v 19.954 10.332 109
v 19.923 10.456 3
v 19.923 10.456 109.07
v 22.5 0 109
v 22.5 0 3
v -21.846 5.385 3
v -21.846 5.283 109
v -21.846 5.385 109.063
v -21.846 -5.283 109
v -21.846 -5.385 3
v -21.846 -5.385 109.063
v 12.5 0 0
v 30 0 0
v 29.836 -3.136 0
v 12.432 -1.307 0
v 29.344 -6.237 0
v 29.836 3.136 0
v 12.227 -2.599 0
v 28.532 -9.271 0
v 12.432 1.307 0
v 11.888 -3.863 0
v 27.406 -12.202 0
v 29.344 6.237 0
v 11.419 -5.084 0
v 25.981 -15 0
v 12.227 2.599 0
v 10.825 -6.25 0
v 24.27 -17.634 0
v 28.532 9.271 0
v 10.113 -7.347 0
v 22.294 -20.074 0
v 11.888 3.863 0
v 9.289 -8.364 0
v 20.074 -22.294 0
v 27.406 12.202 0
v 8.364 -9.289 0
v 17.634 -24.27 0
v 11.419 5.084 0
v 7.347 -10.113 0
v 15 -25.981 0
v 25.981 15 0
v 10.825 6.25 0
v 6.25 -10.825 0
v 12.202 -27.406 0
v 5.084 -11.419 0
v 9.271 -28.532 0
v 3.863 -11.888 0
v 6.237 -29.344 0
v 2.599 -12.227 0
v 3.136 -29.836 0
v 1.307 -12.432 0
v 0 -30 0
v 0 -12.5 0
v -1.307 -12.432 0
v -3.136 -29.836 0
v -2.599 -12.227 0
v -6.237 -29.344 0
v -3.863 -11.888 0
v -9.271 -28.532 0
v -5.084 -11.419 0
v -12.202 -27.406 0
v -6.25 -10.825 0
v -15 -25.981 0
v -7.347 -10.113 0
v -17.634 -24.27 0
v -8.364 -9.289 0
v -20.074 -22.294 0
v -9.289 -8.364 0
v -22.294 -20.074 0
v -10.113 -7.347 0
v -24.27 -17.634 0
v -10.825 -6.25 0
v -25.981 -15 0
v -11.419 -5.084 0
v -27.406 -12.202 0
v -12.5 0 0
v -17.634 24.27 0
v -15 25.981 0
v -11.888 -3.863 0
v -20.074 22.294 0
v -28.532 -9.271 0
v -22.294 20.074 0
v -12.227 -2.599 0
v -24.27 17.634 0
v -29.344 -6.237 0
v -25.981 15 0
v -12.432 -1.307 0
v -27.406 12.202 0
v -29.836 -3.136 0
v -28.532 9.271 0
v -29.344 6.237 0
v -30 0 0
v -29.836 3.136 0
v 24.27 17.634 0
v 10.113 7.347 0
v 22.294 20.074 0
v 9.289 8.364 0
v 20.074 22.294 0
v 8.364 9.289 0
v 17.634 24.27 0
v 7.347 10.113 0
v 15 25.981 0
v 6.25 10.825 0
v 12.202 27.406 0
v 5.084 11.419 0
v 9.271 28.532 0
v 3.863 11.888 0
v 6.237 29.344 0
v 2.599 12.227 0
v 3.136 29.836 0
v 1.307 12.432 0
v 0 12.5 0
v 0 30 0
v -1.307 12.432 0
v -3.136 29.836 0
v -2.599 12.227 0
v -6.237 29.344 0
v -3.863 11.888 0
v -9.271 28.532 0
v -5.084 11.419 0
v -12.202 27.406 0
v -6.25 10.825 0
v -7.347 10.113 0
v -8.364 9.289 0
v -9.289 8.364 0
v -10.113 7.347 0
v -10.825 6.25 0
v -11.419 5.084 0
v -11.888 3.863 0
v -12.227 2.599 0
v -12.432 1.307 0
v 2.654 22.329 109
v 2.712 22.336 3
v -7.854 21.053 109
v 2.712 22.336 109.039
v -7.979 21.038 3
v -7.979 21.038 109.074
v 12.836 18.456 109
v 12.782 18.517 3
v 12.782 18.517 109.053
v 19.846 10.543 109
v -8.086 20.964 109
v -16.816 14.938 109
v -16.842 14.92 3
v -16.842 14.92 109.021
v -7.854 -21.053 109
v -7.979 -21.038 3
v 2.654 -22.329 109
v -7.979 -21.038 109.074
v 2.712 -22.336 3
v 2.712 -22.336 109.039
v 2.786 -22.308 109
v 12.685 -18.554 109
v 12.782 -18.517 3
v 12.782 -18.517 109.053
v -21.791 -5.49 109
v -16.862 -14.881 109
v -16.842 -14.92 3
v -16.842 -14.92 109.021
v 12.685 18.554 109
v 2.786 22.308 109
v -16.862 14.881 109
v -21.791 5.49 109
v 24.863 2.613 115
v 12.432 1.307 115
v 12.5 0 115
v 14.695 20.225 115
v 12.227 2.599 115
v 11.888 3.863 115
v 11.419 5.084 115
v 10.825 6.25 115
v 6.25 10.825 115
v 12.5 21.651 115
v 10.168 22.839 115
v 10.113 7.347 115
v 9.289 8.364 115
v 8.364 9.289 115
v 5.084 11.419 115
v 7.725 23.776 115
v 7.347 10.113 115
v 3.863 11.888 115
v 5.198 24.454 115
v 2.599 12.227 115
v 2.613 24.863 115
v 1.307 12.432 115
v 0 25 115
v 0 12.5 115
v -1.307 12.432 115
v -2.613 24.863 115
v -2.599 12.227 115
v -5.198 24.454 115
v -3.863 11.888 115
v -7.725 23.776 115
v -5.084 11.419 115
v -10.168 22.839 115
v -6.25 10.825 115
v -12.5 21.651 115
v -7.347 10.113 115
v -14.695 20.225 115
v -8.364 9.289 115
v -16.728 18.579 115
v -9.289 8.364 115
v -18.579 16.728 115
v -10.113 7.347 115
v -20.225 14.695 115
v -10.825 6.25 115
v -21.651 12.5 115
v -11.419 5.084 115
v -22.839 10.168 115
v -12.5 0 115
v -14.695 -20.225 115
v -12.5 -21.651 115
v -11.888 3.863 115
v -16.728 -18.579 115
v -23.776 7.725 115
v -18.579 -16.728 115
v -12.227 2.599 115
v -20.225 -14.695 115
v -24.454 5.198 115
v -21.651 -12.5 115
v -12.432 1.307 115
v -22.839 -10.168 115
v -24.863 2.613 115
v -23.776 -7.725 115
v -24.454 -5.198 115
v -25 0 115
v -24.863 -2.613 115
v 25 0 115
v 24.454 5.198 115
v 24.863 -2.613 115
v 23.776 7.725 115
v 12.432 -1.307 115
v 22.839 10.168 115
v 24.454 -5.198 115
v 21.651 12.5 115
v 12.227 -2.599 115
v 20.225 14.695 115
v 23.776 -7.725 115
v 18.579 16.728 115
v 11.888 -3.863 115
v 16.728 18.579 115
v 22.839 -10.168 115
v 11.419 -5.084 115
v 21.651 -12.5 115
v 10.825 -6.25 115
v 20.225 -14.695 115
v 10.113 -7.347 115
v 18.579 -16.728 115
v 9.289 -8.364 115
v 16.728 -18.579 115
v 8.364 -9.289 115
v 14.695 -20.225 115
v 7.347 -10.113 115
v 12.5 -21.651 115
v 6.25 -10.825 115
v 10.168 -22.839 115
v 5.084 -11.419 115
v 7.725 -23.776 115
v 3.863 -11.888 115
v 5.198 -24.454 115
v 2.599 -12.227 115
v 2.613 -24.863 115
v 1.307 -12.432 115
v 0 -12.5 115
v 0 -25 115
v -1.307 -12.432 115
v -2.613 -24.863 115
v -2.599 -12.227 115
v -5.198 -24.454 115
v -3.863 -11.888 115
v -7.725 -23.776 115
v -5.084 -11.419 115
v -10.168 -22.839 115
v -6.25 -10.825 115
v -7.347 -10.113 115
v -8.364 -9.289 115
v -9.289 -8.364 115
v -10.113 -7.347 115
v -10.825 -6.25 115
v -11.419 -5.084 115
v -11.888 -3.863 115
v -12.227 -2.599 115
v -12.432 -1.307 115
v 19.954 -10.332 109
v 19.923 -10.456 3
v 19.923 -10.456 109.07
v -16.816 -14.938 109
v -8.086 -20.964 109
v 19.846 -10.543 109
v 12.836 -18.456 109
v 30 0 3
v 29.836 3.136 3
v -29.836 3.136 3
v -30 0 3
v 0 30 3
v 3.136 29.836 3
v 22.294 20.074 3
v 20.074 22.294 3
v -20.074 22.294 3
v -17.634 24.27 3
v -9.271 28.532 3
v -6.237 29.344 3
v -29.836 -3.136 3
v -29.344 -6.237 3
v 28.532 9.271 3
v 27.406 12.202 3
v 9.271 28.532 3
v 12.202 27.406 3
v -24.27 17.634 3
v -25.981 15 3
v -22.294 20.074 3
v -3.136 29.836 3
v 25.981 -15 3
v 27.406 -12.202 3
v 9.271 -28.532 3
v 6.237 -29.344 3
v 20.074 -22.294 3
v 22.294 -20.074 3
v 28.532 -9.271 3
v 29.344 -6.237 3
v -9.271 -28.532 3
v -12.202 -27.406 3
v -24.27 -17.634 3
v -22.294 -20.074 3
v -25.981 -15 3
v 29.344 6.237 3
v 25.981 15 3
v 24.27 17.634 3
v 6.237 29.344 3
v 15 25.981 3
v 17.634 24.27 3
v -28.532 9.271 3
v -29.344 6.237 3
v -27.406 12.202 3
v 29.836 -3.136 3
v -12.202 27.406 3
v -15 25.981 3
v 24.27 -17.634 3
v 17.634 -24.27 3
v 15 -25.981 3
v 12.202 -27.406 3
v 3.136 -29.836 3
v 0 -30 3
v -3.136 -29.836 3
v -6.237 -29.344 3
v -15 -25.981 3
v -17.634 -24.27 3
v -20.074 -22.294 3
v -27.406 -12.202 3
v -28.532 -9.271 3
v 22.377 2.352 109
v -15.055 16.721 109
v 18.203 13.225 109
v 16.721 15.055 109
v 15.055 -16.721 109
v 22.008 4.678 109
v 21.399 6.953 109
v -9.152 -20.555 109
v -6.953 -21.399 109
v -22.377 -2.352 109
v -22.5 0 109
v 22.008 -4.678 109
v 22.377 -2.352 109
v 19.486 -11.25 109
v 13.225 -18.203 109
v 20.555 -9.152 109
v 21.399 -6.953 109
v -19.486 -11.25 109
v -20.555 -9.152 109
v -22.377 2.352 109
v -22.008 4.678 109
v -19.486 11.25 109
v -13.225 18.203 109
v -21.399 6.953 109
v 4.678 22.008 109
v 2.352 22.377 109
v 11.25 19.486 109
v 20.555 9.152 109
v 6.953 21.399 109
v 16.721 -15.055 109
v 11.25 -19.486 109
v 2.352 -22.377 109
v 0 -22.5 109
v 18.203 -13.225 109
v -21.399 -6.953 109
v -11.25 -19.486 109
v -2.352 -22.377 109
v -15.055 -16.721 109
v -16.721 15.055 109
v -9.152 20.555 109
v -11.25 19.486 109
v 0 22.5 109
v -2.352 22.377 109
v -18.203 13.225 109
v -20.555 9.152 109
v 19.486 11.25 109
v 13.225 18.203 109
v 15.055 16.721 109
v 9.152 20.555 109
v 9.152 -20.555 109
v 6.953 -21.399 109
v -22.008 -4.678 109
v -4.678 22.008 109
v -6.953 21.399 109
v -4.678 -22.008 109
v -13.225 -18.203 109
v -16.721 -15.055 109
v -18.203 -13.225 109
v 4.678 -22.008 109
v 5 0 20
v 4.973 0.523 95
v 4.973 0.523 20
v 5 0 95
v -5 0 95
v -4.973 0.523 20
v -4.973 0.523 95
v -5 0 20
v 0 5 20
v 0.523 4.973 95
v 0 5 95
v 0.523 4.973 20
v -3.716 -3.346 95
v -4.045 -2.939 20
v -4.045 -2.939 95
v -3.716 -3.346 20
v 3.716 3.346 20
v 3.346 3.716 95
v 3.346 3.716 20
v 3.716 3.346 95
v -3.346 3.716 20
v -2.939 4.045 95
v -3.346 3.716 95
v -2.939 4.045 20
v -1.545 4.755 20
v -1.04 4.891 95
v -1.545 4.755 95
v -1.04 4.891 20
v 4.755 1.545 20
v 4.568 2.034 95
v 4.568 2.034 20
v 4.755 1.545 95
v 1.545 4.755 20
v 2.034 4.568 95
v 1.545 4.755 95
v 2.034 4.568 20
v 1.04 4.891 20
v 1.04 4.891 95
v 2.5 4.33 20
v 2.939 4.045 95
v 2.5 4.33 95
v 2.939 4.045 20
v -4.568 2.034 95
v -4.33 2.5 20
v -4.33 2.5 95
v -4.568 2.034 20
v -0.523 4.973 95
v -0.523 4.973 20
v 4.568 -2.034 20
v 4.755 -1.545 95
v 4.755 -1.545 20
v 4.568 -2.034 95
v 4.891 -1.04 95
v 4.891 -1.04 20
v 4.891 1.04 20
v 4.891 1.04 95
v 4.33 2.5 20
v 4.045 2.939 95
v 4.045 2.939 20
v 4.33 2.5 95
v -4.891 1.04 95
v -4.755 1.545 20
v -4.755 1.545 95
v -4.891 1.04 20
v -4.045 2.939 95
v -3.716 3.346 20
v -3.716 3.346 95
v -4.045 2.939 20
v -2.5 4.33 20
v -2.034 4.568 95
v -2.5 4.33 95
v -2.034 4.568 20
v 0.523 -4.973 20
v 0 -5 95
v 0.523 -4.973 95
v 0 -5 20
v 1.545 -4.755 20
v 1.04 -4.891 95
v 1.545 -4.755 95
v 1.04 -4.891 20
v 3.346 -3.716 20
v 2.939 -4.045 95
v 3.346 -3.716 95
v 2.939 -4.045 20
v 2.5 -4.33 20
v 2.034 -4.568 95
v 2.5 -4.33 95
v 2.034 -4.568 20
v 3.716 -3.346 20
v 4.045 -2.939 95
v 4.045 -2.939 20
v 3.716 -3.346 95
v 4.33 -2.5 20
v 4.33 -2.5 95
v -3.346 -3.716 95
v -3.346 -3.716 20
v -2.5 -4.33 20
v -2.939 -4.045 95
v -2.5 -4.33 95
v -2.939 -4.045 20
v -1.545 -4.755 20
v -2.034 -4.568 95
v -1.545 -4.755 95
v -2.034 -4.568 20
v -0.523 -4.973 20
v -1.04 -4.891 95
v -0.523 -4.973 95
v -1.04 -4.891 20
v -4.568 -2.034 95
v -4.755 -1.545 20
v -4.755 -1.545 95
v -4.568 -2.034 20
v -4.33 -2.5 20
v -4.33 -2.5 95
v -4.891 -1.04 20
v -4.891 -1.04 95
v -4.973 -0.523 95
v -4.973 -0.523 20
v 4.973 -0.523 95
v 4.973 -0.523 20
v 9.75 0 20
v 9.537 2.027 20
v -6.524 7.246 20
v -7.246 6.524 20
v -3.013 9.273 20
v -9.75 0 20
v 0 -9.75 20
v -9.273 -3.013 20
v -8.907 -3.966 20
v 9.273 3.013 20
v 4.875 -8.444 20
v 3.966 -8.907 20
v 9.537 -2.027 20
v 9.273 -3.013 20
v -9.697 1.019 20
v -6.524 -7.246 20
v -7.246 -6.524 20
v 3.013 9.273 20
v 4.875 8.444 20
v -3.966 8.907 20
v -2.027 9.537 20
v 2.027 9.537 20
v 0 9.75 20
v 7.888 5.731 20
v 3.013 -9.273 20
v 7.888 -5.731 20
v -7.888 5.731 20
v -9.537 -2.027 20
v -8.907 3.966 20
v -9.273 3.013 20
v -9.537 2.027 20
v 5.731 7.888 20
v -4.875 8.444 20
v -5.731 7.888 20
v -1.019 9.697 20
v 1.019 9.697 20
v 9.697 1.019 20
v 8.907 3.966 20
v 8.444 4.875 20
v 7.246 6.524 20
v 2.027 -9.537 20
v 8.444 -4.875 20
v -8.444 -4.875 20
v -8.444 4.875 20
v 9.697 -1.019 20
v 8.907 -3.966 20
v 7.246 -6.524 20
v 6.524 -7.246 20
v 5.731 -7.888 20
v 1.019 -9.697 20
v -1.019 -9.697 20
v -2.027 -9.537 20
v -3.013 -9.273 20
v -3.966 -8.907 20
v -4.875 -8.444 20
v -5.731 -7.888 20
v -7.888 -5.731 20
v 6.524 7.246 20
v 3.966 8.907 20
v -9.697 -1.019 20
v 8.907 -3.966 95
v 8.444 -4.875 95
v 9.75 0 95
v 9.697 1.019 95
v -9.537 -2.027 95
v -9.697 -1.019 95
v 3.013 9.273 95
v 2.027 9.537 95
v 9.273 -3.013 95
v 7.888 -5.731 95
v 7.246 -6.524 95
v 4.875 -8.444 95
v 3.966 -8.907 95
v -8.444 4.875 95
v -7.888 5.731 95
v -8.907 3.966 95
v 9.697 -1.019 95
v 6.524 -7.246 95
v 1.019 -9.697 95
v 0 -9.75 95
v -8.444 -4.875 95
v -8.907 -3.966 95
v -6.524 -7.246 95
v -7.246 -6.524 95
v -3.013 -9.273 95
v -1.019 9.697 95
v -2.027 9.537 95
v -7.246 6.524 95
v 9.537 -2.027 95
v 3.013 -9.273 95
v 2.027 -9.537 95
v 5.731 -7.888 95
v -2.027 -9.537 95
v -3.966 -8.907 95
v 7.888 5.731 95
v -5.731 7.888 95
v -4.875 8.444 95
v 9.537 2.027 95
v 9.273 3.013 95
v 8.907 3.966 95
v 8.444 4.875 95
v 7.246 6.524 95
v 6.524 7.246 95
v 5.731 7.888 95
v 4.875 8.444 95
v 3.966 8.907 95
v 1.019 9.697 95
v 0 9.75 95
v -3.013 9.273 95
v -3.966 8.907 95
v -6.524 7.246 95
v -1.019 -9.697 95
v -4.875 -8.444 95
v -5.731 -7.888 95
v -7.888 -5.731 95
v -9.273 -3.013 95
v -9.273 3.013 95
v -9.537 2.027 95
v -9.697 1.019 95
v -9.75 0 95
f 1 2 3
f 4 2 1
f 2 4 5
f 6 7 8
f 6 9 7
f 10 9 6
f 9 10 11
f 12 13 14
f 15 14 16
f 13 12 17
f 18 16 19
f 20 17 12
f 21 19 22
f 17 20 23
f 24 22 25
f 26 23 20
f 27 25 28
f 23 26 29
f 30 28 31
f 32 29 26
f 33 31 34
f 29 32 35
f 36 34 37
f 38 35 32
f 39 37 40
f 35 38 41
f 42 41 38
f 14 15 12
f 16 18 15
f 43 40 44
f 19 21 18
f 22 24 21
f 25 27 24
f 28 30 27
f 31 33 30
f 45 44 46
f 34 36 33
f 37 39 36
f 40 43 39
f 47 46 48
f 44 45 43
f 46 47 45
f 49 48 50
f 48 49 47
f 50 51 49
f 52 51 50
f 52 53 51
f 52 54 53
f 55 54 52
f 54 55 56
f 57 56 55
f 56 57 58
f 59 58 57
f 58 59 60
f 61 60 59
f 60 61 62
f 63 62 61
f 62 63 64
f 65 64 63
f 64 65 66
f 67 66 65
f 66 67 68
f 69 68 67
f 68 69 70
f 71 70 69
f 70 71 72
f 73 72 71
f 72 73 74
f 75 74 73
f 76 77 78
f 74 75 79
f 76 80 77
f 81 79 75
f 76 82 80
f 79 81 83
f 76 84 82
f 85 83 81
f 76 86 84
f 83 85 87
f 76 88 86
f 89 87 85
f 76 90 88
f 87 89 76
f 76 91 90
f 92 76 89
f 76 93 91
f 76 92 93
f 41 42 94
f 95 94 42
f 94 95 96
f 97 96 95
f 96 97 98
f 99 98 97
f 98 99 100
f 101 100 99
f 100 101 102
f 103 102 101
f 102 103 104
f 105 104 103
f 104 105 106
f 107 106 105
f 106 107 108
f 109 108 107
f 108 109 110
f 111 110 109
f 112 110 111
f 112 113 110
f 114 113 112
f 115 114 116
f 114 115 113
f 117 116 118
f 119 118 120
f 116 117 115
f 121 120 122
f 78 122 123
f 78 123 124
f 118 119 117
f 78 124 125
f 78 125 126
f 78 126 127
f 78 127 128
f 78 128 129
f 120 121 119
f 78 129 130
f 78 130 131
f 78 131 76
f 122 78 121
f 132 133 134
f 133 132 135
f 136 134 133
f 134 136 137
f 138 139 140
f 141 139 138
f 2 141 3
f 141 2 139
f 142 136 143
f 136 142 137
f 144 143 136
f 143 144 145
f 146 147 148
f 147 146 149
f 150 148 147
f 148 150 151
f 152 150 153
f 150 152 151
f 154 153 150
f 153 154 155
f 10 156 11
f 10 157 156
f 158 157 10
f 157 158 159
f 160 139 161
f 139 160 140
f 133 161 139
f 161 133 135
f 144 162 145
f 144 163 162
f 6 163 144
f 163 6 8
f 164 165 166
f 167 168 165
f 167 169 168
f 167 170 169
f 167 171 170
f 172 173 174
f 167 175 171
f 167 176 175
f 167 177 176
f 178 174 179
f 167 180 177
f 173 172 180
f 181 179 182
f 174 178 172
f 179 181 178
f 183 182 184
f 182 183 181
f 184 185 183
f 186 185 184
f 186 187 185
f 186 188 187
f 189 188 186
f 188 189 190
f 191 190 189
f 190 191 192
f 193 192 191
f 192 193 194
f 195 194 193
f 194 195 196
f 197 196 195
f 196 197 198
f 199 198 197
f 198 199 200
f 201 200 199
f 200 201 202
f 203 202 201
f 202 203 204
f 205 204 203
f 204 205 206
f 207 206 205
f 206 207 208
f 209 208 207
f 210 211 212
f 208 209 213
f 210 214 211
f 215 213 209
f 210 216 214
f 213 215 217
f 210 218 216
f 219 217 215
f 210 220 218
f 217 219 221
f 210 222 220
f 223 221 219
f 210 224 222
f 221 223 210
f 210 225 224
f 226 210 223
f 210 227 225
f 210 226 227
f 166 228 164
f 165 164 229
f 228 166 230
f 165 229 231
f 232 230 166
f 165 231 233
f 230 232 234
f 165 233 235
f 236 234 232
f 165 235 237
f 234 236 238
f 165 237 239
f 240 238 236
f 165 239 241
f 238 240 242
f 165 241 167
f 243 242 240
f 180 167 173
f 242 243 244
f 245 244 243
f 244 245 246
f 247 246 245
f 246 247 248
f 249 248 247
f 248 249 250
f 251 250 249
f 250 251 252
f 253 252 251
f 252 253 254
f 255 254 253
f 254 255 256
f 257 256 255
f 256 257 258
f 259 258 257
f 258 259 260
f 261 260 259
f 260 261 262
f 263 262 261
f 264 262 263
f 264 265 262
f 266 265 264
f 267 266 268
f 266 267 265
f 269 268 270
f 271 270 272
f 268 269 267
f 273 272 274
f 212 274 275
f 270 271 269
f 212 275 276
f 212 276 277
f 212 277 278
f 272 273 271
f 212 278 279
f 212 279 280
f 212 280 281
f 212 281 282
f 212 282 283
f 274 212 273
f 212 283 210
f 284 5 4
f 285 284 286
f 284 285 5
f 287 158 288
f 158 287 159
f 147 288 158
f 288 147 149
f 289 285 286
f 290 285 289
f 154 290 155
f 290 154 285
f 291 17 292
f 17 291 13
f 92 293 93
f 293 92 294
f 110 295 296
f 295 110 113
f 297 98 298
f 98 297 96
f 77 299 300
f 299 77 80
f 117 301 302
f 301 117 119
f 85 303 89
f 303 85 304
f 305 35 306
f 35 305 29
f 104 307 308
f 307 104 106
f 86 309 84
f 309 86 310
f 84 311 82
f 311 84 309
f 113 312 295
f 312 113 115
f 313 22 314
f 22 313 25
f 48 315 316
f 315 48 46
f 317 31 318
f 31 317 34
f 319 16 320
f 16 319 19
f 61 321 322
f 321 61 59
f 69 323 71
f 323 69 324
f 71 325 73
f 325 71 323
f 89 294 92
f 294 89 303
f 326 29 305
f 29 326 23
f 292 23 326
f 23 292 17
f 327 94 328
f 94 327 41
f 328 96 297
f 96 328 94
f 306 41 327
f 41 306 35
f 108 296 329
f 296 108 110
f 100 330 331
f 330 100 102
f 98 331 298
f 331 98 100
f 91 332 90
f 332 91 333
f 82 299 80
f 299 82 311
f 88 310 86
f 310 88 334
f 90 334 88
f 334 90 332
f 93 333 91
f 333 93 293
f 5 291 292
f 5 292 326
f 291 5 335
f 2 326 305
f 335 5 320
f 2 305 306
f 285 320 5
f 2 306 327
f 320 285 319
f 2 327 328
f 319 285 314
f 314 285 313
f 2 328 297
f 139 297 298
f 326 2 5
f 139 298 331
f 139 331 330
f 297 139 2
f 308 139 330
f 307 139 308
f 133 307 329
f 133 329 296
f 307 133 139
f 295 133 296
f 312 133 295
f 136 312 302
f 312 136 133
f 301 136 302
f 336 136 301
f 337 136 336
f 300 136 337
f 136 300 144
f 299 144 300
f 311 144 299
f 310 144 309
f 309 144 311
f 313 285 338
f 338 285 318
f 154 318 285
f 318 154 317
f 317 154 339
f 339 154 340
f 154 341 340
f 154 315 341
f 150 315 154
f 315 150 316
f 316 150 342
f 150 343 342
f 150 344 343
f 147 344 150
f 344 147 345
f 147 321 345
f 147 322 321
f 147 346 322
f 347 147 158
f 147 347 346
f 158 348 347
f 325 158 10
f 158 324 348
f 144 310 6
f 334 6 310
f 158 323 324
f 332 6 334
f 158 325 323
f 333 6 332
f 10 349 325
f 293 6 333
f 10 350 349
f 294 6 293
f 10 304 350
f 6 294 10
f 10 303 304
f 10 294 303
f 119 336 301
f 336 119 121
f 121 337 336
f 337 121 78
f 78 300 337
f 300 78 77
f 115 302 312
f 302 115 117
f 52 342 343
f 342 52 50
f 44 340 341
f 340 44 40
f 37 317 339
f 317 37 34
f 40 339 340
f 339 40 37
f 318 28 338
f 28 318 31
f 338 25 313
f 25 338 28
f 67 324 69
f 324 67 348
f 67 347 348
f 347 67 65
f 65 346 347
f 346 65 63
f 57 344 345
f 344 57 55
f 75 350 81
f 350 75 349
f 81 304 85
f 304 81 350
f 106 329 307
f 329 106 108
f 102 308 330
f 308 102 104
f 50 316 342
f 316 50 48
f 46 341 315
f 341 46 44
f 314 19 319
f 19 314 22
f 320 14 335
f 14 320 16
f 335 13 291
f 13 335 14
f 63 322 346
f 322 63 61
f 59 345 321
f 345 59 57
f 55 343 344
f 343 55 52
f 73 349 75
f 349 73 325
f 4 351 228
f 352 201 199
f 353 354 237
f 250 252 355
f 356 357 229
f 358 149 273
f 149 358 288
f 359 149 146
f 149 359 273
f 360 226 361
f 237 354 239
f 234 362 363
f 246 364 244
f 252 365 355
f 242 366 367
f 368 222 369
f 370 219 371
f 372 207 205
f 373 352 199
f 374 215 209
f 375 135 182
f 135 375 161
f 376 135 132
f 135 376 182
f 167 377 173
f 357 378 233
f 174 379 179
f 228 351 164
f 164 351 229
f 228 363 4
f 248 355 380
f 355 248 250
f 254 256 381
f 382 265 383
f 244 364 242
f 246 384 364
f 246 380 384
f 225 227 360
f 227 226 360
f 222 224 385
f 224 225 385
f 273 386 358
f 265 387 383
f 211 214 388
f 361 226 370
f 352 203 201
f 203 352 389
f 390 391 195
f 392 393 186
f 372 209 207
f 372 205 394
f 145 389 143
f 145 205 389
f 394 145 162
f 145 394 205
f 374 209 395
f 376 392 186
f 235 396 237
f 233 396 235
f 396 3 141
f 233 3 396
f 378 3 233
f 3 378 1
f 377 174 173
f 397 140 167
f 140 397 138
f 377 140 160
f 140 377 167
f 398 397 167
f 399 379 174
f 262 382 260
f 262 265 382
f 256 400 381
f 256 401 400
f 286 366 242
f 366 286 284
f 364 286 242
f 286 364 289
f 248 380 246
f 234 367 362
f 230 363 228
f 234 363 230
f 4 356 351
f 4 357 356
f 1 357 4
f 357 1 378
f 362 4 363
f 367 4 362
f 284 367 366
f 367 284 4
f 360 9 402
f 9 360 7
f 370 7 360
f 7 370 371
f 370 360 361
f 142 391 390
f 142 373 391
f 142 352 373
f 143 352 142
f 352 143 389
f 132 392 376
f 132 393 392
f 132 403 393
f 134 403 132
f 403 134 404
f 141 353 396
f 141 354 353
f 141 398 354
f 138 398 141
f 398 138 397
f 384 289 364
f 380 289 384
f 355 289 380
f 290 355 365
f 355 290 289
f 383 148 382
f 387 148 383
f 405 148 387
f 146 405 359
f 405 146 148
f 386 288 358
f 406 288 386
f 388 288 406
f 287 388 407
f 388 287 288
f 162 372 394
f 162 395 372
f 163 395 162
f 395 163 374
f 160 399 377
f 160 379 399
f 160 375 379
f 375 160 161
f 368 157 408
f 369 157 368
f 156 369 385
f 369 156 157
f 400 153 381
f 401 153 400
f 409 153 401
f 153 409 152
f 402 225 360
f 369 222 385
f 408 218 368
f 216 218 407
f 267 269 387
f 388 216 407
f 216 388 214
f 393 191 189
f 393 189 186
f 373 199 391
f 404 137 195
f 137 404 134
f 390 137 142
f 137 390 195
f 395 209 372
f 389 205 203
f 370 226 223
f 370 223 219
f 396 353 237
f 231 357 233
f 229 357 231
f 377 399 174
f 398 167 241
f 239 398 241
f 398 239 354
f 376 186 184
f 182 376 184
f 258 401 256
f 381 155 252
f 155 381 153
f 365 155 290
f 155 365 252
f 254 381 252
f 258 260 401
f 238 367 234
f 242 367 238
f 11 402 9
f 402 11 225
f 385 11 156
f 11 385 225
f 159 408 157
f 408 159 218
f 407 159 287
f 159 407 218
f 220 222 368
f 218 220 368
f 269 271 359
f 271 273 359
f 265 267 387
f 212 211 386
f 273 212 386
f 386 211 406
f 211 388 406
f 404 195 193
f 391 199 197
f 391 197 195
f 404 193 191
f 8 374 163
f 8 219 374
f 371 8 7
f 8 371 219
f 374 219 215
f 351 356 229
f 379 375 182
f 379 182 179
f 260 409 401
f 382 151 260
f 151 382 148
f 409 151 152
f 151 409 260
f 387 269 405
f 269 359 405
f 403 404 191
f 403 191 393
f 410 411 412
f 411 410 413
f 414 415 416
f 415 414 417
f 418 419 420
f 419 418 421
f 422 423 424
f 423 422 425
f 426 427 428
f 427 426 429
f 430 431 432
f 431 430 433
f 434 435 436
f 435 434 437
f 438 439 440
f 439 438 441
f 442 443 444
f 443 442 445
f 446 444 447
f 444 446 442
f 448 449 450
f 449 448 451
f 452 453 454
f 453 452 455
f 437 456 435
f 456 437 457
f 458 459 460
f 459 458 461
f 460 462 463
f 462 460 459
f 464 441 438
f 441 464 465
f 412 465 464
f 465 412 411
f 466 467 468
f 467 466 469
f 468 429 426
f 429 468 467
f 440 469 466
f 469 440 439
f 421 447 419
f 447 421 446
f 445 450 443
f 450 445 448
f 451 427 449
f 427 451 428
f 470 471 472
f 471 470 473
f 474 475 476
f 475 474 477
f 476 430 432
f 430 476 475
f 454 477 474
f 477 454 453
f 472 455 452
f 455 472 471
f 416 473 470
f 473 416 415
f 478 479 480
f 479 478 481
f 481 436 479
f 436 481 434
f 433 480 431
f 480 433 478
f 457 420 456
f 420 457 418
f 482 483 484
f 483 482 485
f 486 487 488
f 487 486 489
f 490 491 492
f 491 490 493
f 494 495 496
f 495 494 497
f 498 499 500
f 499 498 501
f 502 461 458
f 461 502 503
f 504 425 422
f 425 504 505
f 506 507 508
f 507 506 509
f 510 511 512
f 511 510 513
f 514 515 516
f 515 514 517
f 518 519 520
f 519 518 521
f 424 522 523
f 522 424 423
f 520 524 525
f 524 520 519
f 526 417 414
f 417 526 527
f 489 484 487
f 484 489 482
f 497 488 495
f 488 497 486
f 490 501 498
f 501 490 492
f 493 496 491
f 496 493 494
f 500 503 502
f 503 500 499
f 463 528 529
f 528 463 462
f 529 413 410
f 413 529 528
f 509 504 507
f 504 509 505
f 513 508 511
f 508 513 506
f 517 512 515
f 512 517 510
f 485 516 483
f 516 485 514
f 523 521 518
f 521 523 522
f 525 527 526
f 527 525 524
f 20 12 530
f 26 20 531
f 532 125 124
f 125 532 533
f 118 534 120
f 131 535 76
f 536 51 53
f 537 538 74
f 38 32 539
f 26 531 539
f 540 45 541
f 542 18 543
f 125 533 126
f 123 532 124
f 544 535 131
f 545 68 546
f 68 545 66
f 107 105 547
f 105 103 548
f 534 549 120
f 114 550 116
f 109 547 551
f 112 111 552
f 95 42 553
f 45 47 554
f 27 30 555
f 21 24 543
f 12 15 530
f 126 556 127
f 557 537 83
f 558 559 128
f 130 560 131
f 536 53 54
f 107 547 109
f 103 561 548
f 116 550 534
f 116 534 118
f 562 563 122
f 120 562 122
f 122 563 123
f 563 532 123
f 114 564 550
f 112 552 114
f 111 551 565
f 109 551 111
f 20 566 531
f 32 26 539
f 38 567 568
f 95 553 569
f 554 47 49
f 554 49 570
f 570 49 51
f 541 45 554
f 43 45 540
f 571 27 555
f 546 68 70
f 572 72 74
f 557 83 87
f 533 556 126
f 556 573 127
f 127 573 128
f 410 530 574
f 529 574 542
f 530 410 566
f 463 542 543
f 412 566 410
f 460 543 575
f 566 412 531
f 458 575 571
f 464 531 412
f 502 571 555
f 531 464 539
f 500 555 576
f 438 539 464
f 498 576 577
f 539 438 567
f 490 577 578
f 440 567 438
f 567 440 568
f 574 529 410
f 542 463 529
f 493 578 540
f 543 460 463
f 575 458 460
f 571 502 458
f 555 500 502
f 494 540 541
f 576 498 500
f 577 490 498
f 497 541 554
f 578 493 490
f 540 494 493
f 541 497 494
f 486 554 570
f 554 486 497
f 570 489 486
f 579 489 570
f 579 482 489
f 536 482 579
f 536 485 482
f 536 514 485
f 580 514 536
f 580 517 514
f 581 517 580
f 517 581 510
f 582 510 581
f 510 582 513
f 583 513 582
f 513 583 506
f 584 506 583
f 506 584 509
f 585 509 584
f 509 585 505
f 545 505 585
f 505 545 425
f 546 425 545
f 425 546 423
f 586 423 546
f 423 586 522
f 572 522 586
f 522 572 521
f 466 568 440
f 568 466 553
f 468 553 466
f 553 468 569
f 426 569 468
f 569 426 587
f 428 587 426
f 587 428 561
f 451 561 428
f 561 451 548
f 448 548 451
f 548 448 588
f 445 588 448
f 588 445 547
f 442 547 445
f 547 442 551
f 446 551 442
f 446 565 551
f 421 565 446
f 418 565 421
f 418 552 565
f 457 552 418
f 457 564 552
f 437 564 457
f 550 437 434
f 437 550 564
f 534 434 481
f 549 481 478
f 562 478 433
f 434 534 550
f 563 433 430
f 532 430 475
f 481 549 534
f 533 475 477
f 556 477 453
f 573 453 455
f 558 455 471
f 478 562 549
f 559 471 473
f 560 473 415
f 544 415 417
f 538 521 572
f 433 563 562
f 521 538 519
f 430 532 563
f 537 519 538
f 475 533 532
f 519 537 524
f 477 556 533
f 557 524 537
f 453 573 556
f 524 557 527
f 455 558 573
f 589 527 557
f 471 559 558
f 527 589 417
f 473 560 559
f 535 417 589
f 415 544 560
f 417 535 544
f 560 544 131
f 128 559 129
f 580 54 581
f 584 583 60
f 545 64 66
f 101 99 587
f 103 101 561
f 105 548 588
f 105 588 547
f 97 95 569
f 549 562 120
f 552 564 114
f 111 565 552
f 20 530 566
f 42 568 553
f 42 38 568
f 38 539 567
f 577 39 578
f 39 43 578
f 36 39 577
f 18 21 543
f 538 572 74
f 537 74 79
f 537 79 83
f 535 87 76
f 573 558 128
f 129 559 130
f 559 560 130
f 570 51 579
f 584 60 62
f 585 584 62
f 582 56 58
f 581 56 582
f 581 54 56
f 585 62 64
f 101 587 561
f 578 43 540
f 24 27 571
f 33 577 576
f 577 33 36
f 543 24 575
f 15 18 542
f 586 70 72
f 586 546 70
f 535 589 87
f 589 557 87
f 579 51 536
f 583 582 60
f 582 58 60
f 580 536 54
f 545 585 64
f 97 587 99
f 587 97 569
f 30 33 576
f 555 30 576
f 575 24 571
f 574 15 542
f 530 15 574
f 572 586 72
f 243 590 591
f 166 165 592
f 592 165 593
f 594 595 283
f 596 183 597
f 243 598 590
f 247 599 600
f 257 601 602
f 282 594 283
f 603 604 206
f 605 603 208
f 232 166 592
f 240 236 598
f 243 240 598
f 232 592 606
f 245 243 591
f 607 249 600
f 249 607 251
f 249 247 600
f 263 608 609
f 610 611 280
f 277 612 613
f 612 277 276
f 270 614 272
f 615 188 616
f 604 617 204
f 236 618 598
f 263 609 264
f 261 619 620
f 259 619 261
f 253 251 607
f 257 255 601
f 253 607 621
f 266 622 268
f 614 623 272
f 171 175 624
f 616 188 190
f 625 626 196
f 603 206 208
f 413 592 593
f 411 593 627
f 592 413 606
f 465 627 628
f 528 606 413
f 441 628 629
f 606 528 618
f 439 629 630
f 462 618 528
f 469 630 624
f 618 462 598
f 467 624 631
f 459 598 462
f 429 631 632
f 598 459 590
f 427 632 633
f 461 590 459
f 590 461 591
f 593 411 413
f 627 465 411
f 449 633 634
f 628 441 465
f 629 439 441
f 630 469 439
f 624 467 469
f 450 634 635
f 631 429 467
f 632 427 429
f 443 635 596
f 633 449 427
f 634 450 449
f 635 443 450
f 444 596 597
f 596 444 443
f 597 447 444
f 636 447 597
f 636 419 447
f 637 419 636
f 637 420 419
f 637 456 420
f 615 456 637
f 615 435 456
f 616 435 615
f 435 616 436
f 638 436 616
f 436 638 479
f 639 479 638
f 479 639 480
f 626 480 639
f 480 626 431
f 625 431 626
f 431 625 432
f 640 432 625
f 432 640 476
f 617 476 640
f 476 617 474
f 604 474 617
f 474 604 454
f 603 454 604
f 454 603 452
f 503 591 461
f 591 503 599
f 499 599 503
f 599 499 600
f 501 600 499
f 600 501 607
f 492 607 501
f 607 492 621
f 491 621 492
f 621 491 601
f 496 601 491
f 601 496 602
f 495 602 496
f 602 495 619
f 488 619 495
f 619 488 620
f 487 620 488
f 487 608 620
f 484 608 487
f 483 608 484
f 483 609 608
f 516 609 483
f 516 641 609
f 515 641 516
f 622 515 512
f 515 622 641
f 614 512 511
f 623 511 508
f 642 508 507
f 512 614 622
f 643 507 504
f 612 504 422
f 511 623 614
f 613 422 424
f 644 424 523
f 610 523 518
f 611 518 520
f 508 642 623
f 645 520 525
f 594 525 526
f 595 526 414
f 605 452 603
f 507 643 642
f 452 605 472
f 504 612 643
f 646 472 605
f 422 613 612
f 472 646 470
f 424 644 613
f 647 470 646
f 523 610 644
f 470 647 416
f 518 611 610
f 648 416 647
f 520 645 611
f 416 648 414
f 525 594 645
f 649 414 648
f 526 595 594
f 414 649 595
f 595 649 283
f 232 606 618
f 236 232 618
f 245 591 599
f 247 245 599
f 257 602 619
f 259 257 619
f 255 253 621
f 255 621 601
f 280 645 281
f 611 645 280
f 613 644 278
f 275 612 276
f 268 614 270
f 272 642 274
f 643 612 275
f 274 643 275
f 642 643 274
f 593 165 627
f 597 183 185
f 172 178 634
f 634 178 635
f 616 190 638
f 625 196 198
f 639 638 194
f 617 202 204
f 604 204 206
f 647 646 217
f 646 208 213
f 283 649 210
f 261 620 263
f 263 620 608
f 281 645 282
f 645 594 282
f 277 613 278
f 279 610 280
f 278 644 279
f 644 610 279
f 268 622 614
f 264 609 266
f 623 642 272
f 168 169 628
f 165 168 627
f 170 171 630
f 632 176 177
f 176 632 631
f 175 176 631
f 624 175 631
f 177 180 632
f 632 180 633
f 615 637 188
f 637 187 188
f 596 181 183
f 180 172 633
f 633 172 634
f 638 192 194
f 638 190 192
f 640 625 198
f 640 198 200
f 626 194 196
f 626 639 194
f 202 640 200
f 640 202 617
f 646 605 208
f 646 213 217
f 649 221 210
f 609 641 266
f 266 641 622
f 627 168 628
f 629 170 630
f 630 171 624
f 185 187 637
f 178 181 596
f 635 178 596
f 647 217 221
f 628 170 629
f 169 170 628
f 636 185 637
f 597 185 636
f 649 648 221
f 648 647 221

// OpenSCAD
// Spool bearings axel
$fn=60;

lenMax=115;
dMin=45;
hEdge=3;
dEdge=50;
dEdgeMax=60;
dAxis=10;
dBearings1=19.5;
dBearings2=25;
hBearings=20;


difference() {
    union() {
        cylinder($fn=13,d=dMin, h=lenMax);
        cylinder(d=dEdgeMax, h=hEdge);
        translate([0,0,lenMax-hEdge*2]) cylinder(d1=dMin, d2=dEdge, h=hEdge*2);
    }
    cylinder(d=dAxis, h=lenMax);
    cylinder(d1=dBearings2, d2=dBearings1, h=hBearings);
    translate([0,0,lenMax-hBearings]) cylinder(d1=dBearings1, d2=dBearings2, h=hBearings);
    
}
